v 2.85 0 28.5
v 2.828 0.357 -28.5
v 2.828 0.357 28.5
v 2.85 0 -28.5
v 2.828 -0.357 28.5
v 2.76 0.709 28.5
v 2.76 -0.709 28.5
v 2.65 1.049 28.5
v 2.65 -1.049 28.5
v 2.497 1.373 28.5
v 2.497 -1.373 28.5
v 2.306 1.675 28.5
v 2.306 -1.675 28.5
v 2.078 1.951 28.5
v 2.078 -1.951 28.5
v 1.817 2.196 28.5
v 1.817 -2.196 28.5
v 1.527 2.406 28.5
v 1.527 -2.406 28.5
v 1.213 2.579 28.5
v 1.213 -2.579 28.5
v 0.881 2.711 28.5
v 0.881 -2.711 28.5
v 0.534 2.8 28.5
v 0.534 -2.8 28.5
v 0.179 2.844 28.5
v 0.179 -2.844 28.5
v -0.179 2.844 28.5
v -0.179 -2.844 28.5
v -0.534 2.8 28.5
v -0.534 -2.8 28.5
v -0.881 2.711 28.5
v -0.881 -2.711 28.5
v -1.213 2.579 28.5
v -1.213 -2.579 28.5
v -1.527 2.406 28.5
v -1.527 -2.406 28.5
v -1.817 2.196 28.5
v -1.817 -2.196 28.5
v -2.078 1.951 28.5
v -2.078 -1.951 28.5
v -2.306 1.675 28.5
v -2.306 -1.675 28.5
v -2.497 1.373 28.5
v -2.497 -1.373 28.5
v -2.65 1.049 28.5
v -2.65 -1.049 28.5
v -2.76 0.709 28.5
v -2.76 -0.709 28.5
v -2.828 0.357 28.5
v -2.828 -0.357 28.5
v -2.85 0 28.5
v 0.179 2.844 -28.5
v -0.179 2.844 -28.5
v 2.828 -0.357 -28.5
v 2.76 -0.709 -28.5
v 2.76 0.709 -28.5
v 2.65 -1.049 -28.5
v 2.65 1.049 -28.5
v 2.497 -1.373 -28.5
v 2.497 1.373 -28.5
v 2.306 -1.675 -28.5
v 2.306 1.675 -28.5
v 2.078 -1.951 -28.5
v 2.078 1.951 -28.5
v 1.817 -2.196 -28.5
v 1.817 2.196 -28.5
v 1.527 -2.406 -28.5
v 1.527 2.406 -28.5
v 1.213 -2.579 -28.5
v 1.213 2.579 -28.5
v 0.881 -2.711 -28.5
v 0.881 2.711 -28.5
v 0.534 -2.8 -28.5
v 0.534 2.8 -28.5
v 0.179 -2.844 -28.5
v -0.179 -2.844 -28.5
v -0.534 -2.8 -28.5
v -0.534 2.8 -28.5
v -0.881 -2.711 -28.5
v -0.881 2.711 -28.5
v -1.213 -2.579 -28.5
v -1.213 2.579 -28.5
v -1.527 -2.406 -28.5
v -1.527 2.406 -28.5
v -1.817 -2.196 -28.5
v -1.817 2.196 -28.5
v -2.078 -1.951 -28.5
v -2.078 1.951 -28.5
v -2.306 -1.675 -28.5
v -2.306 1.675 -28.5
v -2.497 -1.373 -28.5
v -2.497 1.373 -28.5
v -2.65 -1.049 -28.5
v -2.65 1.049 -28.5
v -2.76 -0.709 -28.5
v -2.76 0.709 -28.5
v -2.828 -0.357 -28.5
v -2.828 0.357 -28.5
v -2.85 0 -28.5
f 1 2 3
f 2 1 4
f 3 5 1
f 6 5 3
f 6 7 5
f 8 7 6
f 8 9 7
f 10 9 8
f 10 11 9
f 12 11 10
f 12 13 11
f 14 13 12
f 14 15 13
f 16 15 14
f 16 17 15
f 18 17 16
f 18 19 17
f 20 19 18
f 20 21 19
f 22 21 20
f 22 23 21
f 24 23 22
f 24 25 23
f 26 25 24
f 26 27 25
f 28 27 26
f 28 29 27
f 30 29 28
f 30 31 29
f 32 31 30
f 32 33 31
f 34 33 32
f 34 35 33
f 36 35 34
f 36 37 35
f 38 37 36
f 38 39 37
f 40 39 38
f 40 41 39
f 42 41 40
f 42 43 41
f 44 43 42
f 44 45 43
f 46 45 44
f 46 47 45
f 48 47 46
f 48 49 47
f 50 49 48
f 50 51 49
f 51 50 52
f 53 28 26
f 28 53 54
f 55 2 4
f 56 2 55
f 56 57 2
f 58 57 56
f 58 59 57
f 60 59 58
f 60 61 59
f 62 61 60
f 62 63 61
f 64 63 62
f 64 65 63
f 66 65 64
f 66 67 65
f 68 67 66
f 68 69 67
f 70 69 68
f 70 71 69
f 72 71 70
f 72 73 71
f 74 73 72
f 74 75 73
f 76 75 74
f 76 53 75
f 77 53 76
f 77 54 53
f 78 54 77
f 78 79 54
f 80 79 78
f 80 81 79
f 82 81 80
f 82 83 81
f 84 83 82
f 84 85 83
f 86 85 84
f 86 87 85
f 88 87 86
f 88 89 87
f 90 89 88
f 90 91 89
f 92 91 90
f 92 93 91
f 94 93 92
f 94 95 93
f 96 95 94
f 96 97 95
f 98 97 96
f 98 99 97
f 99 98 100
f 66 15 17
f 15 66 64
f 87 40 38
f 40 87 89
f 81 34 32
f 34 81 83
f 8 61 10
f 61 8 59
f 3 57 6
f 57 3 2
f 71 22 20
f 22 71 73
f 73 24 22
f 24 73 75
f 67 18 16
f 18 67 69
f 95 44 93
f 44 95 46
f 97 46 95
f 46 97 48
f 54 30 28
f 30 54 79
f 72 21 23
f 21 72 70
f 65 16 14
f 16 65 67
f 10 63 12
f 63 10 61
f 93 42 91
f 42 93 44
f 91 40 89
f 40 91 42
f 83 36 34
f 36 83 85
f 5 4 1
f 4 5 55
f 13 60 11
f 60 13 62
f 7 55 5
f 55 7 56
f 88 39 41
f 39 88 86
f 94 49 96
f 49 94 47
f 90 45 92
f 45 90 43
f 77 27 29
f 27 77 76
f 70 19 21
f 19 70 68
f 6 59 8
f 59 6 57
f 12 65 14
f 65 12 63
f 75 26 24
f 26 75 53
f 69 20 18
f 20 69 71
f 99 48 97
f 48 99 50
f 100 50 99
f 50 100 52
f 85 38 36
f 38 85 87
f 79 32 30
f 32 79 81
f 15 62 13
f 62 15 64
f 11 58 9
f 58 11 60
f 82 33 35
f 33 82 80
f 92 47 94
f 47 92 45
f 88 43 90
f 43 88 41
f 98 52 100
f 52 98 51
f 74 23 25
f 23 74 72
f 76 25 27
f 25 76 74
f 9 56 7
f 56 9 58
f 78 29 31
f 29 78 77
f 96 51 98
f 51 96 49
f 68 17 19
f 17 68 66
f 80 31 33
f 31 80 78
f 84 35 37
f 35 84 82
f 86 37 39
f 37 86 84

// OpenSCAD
$fn = 50;


difference() {
	union() {
		translate(v = [0, 0, -28.5000000000]) {
			cylinder(h = 57, r = 2.8500000000);
		}
	}
	union() {
		translate(v = [0, 0, -100.0000000000]) {
			cylinder(h = 200, r = 0);
		}
	}
}
